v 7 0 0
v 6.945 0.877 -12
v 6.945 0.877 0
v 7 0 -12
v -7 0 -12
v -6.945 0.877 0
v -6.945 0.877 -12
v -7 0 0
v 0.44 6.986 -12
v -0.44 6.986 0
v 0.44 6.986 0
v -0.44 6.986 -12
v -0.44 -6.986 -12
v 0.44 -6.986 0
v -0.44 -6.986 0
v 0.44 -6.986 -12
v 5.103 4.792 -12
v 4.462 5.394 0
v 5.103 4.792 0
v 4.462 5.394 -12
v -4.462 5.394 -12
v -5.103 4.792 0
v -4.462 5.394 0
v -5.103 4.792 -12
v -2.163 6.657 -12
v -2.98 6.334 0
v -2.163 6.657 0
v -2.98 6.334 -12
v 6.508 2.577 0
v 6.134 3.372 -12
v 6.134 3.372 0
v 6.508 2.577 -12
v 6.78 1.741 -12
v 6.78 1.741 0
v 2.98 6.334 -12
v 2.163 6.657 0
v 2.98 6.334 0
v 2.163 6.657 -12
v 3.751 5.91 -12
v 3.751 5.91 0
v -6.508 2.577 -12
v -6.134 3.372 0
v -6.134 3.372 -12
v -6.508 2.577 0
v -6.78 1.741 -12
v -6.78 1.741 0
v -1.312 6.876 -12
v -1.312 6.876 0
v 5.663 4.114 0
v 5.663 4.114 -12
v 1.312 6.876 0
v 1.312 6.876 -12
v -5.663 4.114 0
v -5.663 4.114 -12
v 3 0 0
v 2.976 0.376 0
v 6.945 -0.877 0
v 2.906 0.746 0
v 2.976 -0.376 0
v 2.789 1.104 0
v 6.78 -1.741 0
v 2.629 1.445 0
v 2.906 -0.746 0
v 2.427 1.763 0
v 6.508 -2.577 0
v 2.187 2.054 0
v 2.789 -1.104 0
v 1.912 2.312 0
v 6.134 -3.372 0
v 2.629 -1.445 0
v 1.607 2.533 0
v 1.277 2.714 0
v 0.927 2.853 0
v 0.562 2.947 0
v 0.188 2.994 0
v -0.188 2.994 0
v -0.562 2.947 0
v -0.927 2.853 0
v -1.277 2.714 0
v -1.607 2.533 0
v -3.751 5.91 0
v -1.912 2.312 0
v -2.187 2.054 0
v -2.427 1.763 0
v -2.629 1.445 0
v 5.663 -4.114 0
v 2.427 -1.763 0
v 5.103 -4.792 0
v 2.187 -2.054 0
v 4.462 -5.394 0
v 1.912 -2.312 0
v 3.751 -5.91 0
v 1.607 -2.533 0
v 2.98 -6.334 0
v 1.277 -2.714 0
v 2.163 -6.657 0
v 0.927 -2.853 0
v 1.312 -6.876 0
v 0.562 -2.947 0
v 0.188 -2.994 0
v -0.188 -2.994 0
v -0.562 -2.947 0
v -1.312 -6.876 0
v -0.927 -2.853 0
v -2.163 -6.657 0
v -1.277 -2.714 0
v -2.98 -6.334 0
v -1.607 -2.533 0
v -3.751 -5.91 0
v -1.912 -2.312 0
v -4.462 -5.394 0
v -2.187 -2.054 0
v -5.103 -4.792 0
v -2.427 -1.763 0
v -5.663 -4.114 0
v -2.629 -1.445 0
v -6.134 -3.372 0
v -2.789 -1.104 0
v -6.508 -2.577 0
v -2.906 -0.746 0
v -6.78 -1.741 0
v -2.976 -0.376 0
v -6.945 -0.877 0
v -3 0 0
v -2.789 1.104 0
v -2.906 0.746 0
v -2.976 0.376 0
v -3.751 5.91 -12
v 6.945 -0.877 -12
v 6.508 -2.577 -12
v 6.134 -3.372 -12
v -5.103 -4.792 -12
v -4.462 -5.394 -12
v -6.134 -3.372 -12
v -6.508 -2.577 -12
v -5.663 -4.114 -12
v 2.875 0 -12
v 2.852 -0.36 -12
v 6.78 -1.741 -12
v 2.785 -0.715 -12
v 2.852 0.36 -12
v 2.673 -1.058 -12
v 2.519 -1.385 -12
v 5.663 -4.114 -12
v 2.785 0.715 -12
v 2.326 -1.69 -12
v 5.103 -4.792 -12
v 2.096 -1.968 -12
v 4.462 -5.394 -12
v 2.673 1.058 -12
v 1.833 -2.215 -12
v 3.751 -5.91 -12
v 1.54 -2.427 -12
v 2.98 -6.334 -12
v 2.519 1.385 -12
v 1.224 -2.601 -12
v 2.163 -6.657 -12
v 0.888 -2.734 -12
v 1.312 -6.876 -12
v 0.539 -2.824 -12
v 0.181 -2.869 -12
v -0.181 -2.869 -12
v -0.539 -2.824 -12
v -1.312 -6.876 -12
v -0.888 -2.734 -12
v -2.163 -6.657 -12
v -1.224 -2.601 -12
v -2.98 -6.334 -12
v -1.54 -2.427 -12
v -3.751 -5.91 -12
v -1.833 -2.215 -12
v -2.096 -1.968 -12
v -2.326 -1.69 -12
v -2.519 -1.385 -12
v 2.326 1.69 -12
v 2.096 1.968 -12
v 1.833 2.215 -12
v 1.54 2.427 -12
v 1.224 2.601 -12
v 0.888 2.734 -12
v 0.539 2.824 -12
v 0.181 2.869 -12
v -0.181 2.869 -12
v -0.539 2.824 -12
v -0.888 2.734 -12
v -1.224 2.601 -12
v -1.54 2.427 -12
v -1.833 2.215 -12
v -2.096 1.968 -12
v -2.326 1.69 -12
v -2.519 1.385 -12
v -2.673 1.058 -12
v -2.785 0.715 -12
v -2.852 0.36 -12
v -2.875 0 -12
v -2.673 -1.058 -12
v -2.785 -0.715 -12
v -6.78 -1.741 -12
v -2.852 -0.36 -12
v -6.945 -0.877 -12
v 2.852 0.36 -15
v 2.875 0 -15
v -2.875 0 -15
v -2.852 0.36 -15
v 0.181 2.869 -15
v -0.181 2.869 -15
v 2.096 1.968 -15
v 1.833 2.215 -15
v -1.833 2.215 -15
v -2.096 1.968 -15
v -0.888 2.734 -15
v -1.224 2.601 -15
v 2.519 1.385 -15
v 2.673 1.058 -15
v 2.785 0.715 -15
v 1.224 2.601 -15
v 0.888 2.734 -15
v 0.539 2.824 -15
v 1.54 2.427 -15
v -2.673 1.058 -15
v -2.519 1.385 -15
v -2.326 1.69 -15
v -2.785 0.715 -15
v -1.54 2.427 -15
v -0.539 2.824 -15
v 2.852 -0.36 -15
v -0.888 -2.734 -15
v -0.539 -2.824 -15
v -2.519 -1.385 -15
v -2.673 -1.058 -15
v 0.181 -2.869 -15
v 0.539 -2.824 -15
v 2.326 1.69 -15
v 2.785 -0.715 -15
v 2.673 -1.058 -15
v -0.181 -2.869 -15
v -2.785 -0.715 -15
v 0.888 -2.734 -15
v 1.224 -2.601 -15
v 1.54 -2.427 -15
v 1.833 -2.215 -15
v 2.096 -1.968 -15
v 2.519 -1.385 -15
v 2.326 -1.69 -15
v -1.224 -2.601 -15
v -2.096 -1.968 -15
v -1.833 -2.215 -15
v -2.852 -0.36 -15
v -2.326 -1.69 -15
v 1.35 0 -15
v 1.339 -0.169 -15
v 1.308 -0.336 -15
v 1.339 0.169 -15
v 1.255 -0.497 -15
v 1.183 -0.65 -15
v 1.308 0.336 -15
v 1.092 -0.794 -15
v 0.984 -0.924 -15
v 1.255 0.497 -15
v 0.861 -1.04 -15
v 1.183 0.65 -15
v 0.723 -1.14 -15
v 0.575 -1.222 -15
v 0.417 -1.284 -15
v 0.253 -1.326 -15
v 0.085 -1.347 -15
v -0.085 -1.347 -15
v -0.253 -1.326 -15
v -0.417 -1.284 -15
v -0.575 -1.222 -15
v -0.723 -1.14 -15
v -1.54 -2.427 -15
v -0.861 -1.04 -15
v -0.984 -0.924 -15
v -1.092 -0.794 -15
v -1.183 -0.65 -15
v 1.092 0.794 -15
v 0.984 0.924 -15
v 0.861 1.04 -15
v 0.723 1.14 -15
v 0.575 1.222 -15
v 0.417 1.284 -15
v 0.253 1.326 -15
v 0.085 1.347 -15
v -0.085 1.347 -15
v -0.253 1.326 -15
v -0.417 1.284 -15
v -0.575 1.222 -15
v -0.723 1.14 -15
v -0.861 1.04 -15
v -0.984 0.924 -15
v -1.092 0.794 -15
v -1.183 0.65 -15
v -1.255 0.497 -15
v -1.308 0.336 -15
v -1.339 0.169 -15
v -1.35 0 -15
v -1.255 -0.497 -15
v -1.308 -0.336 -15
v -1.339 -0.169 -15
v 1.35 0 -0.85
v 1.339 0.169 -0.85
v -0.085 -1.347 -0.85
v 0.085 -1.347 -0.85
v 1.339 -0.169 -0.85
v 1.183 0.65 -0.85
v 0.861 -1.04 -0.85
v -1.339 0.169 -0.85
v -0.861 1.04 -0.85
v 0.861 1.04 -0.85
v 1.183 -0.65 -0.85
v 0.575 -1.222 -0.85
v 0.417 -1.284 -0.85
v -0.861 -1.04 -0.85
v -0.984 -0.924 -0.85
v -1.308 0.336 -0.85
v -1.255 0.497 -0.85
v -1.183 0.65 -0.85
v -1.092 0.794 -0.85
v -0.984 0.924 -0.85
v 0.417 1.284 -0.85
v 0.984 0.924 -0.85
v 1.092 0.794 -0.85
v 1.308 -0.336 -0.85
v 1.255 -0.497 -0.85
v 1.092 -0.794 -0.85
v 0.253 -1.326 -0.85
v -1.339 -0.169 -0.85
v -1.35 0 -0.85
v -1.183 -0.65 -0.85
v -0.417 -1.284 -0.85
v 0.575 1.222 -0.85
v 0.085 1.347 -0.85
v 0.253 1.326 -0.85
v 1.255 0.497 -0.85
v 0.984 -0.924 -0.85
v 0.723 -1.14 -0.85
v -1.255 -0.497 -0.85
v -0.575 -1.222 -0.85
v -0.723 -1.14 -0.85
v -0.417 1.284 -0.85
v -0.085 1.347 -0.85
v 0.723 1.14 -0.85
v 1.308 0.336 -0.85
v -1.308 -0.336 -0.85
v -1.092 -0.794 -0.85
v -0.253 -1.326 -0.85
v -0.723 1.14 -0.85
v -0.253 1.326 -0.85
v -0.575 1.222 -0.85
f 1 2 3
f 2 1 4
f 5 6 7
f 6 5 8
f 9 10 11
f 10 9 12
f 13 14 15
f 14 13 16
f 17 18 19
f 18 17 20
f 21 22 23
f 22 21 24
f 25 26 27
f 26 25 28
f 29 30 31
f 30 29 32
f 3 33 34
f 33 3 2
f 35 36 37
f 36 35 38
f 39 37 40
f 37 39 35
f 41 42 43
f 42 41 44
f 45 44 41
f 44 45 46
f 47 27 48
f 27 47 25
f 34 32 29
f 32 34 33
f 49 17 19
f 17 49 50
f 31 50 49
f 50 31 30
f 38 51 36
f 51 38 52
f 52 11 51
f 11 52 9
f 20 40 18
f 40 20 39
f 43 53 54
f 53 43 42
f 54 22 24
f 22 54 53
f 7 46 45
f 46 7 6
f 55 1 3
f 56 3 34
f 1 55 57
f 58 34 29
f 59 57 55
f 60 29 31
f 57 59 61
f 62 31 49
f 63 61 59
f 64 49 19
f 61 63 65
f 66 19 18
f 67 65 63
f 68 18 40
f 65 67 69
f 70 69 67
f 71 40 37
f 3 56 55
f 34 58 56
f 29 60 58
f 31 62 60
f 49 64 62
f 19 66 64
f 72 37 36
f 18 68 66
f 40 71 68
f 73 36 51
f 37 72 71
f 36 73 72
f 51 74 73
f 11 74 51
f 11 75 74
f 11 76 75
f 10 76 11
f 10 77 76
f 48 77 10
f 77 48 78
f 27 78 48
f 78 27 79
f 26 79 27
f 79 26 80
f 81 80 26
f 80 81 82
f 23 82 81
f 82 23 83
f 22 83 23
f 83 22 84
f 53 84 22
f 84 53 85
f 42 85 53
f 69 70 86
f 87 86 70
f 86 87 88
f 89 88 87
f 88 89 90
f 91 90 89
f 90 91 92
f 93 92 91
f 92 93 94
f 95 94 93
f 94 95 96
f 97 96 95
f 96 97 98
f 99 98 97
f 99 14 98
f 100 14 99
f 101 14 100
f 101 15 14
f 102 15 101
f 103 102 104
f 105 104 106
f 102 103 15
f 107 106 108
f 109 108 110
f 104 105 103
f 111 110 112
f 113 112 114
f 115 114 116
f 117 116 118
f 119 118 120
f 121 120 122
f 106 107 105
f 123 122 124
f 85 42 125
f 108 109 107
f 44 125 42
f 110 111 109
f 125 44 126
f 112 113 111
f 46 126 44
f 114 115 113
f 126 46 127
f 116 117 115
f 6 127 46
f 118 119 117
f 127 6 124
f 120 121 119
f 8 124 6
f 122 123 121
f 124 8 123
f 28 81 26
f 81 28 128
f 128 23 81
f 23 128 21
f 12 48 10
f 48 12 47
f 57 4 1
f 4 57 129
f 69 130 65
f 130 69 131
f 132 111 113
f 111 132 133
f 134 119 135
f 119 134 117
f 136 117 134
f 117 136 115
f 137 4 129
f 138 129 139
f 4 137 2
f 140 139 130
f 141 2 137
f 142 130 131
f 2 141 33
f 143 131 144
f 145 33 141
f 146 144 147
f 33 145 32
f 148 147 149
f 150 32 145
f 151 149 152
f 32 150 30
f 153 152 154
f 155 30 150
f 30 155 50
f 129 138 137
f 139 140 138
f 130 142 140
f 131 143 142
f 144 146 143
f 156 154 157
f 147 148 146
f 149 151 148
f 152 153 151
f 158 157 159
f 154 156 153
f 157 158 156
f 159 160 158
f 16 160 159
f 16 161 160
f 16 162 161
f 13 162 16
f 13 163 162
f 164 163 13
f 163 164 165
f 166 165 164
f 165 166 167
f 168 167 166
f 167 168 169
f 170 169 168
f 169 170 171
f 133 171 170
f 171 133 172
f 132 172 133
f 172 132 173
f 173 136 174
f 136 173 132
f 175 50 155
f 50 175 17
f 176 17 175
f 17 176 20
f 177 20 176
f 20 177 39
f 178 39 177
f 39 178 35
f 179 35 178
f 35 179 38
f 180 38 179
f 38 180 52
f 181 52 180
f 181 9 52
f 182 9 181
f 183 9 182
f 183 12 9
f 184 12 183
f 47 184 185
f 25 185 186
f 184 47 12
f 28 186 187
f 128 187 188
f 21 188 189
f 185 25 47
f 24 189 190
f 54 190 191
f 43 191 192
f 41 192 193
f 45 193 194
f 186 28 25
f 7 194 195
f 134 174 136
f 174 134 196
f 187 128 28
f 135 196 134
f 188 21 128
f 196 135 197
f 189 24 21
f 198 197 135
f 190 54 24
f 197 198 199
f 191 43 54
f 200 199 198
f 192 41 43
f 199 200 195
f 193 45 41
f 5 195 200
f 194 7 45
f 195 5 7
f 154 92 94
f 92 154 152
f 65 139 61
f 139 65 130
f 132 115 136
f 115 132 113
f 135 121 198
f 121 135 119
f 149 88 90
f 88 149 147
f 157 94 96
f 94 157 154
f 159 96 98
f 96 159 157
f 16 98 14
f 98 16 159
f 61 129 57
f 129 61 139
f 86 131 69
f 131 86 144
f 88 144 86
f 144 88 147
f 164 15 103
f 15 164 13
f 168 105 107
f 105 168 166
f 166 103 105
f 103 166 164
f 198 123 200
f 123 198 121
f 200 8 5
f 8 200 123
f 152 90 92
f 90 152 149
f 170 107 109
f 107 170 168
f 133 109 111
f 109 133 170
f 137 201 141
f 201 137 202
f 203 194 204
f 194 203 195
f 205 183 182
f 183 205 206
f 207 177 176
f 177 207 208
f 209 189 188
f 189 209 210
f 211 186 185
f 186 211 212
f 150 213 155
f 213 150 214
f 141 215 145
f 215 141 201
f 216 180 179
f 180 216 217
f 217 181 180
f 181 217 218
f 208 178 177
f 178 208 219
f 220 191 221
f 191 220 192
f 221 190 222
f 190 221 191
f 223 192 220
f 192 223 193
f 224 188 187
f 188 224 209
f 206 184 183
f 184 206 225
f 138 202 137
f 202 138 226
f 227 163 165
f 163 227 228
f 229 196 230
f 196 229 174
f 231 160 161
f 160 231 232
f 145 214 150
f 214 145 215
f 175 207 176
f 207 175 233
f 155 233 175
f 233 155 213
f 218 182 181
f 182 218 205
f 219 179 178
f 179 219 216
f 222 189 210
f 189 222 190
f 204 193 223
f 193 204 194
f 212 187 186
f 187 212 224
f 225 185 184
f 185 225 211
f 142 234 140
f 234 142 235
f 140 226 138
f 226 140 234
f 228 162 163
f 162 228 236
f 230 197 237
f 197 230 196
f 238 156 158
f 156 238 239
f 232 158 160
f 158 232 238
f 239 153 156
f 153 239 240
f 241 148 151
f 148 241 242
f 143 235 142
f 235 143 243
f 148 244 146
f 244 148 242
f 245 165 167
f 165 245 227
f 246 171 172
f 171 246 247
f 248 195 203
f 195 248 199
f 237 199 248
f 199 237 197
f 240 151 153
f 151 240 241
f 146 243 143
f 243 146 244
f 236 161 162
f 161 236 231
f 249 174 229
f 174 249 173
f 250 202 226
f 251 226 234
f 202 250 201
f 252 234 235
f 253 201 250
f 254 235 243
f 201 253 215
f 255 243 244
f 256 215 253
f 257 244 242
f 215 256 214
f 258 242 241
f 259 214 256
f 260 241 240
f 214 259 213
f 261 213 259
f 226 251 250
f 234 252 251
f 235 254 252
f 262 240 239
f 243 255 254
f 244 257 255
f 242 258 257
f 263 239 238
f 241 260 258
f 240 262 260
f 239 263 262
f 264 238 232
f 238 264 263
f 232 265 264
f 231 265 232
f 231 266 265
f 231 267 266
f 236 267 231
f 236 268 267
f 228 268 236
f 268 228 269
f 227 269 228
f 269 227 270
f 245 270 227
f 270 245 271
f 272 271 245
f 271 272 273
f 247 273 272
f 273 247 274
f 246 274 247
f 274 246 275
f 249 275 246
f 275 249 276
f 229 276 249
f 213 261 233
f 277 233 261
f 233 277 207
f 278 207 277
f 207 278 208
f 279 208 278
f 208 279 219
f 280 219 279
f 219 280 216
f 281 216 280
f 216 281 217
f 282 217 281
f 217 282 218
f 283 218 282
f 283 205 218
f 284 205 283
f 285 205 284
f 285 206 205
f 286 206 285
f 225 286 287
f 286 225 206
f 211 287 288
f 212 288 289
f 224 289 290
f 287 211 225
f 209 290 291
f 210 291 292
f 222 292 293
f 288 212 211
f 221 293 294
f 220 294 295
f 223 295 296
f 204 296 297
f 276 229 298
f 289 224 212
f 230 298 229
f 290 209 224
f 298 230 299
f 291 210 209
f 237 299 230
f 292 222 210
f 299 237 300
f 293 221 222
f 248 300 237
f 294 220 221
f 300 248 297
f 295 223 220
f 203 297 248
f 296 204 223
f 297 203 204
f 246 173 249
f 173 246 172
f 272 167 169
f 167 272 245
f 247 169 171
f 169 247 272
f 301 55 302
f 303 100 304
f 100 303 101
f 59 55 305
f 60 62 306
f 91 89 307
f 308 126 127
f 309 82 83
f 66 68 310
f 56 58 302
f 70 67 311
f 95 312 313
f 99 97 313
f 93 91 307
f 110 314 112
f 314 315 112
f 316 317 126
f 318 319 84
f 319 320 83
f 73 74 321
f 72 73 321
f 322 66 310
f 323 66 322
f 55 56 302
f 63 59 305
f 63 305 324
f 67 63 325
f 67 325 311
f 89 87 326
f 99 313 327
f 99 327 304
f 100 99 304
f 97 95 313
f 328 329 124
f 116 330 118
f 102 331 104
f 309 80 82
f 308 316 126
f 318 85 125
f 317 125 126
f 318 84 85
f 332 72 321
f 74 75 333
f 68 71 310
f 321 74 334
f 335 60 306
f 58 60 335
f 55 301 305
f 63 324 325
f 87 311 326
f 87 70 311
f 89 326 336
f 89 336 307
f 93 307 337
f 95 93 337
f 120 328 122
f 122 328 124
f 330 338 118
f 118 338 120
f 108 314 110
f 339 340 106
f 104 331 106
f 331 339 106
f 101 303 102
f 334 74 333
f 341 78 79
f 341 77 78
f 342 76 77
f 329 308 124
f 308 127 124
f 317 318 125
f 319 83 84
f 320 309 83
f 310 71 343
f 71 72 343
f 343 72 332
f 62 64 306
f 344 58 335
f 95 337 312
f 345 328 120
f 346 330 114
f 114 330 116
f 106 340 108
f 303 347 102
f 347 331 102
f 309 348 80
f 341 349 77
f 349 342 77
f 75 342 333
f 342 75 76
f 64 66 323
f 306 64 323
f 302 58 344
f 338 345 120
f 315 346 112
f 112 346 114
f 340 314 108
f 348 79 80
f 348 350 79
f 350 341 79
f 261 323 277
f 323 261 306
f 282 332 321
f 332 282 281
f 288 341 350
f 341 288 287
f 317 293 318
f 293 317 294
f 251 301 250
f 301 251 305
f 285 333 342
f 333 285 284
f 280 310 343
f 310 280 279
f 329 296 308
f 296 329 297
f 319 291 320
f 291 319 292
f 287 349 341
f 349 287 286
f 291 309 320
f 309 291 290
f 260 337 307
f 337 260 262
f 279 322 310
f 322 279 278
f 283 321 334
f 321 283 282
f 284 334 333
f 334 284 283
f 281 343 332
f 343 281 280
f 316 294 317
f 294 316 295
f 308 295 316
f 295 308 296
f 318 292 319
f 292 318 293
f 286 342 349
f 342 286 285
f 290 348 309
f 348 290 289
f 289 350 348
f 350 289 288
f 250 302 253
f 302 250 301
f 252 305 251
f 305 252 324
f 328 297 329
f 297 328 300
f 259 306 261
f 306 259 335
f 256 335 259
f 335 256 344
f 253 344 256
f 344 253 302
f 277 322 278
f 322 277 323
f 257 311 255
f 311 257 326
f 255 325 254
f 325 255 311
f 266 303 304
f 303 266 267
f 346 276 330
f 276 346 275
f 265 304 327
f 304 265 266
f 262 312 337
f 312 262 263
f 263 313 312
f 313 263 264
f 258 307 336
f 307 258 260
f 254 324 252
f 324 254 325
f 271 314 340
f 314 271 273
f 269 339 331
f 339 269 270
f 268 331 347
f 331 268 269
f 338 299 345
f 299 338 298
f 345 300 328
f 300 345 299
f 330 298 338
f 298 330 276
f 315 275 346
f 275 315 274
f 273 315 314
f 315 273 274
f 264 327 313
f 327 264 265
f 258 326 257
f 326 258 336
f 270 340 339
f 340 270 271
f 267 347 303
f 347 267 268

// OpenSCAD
$fn = 50;

difference() {
	union() {
		translate(v = [0, 0, -12.0]) {
			cylinder(h = 12, r = 7.0);
		}
		#translate(v = [0, 0, -15.0]) {
			cylinder(h = 15, r = 2.875);
		}
	}
	union() {
		translate(v = [0, 0, 0]) {
			rotate(a = [0, 0, 0]) {
				difference() {
					union() {
						translate(v = [0, 0, -15.0]) {
							cylinder(h = 15, r = 1.0);
						}
						translate(v = [0, 0, -0.85]) {
							cylinder(h = 0.85, r1 = 1.35, r2 = 3.0);
						}
						translate(v = [0, 0, -15.0]) {
							cylinder(h = 15, r = 1.35);
						}
						translate(v = [0, 0, -15.0]) {
							cylinder(h = 15, r = 1.0);
						}
					}
					union();
				}
			}
		}
	}
}
